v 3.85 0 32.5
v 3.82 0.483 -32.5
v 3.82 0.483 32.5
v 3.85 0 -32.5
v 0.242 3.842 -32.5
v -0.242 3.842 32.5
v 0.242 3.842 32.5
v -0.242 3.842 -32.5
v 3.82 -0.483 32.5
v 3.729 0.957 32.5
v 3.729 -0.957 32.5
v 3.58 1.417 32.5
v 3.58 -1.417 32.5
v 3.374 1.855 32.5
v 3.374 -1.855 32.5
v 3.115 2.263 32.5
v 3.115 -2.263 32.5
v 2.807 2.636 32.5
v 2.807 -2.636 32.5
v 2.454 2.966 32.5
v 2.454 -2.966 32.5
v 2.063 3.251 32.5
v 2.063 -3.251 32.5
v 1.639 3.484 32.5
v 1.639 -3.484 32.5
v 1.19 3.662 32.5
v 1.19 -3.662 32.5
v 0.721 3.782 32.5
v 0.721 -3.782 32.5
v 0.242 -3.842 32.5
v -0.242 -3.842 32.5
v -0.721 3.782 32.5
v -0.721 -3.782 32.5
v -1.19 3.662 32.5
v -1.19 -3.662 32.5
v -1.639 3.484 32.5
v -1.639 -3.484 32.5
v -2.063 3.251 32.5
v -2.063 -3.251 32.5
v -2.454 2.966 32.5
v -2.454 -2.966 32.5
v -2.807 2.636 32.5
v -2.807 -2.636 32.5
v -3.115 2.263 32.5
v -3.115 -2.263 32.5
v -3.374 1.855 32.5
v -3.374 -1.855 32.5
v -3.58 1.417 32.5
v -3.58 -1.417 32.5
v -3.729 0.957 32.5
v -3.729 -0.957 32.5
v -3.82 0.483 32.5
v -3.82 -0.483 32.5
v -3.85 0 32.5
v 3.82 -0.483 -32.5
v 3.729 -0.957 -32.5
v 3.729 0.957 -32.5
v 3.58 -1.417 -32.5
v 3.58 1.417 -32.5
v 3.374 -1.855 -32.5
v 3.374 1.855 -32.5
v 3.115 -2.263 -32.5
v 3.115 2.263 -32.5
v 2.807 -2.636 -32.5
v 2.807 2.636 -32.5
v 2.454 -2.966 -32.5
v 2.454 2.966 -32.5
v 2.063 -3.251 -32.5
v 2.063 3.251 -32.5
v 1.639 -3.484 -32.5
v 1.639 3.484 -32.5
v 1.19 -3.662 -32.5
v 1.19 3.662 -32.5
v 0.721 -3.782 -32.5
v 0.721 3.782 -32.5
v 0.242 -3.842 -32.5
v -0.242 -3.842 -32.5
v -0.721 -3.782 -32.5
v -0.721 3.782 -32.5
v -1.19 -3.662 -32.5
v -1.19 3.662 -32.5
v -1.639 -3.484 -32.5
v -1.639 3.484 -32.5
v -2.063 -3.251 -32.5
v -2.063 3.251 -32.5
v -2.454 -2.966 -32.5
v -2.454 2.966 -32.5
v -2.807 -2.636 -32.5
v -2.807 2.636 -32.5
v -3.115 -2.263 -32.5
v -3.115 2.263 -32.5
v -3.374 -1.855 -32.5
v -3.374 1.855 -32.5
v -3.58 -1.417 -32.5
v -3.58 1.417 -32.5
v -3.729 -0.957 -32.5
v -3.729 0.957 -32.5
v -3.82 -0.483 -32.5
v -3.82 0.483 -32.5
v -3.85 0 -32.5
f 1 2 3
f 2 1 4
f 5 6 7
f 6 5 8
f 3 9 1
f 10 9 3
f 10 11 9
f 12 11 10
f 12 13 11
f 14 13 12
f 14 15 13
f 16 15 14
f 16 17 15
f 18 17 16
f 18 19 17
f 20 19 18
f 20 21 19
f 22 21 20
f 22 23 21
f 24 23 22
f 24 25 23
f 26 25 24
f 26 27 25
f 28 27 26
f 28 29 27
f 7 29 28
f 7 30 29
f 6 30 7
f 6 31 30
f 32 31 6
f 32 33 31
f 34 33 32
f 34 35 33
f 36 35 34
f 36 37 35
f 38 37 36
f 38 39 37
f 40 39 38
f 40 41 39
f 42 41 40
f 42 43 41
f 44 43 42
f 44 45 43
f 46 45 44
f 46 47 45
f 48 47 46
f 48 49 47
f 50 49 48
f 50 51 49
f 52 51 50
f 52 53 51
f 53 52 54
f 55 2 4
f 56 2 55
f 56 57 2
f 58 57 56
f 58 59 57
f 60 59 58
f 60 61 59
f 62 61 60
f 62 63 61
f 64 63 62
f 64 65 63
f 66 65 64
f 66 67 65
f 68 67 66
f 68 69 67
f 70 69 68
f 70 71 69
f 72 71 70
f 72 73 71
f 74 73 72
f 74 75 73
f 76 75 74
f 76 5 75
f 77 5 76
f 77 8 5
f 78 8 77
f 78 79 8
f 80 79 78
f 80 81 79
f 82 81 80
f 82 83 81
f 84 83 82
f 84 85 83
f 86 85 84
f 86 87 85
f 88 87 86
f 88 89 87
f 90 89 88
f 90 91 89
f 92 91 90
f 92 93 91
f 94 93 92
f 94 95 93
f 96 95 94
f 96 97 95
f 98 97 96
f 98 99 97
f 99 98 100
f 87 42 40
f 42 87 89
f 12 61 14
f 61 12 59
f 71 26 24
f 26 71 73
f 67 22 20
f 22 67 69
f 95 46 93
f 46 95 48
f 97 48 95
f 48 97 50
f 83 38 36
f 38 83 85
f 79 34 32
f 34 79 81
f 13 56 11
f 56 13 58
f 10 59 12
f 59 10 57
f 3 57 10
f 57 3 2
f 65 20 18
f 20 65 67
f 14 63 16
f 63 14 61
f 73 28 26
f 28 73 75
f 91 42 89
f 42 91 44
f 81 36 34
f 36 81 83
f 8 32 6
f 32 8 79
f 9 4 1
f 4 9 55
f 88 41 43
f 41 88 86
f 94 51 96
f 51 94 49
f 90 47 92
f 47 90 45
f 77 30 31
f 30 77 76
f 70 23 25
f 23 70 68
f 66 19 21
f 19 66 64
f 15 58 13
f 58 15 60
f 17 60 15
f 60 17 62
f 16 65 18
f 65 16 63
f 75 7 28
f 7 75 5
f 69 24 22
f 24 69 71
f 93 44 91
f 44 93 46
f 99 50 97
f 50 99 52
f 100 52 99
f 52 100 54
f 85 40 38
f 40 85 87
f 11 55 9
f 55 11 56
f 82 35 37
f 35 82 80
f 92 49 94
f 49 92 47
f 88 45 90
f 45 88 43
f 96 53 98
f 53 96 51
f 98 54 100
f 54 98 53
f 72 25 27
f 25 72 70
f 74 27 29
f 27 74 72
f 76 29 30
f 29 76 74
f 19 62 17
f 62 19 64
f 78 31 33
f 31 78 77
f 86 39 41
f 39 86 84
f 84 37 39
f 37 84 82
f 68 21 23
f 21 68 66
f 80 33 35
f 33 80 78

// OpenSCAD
$fn = 50;


difference() {
	union() {
		translate(v = [0, 0, -32.5000000000]) {
			cylinder(h = 65, r = 3.8500000000);
		}
	}
	union() {
		translate(v = [0, 0, -100.0000000000]) {
			cylinder(h = 200, r = 0);
		}
	}
}
